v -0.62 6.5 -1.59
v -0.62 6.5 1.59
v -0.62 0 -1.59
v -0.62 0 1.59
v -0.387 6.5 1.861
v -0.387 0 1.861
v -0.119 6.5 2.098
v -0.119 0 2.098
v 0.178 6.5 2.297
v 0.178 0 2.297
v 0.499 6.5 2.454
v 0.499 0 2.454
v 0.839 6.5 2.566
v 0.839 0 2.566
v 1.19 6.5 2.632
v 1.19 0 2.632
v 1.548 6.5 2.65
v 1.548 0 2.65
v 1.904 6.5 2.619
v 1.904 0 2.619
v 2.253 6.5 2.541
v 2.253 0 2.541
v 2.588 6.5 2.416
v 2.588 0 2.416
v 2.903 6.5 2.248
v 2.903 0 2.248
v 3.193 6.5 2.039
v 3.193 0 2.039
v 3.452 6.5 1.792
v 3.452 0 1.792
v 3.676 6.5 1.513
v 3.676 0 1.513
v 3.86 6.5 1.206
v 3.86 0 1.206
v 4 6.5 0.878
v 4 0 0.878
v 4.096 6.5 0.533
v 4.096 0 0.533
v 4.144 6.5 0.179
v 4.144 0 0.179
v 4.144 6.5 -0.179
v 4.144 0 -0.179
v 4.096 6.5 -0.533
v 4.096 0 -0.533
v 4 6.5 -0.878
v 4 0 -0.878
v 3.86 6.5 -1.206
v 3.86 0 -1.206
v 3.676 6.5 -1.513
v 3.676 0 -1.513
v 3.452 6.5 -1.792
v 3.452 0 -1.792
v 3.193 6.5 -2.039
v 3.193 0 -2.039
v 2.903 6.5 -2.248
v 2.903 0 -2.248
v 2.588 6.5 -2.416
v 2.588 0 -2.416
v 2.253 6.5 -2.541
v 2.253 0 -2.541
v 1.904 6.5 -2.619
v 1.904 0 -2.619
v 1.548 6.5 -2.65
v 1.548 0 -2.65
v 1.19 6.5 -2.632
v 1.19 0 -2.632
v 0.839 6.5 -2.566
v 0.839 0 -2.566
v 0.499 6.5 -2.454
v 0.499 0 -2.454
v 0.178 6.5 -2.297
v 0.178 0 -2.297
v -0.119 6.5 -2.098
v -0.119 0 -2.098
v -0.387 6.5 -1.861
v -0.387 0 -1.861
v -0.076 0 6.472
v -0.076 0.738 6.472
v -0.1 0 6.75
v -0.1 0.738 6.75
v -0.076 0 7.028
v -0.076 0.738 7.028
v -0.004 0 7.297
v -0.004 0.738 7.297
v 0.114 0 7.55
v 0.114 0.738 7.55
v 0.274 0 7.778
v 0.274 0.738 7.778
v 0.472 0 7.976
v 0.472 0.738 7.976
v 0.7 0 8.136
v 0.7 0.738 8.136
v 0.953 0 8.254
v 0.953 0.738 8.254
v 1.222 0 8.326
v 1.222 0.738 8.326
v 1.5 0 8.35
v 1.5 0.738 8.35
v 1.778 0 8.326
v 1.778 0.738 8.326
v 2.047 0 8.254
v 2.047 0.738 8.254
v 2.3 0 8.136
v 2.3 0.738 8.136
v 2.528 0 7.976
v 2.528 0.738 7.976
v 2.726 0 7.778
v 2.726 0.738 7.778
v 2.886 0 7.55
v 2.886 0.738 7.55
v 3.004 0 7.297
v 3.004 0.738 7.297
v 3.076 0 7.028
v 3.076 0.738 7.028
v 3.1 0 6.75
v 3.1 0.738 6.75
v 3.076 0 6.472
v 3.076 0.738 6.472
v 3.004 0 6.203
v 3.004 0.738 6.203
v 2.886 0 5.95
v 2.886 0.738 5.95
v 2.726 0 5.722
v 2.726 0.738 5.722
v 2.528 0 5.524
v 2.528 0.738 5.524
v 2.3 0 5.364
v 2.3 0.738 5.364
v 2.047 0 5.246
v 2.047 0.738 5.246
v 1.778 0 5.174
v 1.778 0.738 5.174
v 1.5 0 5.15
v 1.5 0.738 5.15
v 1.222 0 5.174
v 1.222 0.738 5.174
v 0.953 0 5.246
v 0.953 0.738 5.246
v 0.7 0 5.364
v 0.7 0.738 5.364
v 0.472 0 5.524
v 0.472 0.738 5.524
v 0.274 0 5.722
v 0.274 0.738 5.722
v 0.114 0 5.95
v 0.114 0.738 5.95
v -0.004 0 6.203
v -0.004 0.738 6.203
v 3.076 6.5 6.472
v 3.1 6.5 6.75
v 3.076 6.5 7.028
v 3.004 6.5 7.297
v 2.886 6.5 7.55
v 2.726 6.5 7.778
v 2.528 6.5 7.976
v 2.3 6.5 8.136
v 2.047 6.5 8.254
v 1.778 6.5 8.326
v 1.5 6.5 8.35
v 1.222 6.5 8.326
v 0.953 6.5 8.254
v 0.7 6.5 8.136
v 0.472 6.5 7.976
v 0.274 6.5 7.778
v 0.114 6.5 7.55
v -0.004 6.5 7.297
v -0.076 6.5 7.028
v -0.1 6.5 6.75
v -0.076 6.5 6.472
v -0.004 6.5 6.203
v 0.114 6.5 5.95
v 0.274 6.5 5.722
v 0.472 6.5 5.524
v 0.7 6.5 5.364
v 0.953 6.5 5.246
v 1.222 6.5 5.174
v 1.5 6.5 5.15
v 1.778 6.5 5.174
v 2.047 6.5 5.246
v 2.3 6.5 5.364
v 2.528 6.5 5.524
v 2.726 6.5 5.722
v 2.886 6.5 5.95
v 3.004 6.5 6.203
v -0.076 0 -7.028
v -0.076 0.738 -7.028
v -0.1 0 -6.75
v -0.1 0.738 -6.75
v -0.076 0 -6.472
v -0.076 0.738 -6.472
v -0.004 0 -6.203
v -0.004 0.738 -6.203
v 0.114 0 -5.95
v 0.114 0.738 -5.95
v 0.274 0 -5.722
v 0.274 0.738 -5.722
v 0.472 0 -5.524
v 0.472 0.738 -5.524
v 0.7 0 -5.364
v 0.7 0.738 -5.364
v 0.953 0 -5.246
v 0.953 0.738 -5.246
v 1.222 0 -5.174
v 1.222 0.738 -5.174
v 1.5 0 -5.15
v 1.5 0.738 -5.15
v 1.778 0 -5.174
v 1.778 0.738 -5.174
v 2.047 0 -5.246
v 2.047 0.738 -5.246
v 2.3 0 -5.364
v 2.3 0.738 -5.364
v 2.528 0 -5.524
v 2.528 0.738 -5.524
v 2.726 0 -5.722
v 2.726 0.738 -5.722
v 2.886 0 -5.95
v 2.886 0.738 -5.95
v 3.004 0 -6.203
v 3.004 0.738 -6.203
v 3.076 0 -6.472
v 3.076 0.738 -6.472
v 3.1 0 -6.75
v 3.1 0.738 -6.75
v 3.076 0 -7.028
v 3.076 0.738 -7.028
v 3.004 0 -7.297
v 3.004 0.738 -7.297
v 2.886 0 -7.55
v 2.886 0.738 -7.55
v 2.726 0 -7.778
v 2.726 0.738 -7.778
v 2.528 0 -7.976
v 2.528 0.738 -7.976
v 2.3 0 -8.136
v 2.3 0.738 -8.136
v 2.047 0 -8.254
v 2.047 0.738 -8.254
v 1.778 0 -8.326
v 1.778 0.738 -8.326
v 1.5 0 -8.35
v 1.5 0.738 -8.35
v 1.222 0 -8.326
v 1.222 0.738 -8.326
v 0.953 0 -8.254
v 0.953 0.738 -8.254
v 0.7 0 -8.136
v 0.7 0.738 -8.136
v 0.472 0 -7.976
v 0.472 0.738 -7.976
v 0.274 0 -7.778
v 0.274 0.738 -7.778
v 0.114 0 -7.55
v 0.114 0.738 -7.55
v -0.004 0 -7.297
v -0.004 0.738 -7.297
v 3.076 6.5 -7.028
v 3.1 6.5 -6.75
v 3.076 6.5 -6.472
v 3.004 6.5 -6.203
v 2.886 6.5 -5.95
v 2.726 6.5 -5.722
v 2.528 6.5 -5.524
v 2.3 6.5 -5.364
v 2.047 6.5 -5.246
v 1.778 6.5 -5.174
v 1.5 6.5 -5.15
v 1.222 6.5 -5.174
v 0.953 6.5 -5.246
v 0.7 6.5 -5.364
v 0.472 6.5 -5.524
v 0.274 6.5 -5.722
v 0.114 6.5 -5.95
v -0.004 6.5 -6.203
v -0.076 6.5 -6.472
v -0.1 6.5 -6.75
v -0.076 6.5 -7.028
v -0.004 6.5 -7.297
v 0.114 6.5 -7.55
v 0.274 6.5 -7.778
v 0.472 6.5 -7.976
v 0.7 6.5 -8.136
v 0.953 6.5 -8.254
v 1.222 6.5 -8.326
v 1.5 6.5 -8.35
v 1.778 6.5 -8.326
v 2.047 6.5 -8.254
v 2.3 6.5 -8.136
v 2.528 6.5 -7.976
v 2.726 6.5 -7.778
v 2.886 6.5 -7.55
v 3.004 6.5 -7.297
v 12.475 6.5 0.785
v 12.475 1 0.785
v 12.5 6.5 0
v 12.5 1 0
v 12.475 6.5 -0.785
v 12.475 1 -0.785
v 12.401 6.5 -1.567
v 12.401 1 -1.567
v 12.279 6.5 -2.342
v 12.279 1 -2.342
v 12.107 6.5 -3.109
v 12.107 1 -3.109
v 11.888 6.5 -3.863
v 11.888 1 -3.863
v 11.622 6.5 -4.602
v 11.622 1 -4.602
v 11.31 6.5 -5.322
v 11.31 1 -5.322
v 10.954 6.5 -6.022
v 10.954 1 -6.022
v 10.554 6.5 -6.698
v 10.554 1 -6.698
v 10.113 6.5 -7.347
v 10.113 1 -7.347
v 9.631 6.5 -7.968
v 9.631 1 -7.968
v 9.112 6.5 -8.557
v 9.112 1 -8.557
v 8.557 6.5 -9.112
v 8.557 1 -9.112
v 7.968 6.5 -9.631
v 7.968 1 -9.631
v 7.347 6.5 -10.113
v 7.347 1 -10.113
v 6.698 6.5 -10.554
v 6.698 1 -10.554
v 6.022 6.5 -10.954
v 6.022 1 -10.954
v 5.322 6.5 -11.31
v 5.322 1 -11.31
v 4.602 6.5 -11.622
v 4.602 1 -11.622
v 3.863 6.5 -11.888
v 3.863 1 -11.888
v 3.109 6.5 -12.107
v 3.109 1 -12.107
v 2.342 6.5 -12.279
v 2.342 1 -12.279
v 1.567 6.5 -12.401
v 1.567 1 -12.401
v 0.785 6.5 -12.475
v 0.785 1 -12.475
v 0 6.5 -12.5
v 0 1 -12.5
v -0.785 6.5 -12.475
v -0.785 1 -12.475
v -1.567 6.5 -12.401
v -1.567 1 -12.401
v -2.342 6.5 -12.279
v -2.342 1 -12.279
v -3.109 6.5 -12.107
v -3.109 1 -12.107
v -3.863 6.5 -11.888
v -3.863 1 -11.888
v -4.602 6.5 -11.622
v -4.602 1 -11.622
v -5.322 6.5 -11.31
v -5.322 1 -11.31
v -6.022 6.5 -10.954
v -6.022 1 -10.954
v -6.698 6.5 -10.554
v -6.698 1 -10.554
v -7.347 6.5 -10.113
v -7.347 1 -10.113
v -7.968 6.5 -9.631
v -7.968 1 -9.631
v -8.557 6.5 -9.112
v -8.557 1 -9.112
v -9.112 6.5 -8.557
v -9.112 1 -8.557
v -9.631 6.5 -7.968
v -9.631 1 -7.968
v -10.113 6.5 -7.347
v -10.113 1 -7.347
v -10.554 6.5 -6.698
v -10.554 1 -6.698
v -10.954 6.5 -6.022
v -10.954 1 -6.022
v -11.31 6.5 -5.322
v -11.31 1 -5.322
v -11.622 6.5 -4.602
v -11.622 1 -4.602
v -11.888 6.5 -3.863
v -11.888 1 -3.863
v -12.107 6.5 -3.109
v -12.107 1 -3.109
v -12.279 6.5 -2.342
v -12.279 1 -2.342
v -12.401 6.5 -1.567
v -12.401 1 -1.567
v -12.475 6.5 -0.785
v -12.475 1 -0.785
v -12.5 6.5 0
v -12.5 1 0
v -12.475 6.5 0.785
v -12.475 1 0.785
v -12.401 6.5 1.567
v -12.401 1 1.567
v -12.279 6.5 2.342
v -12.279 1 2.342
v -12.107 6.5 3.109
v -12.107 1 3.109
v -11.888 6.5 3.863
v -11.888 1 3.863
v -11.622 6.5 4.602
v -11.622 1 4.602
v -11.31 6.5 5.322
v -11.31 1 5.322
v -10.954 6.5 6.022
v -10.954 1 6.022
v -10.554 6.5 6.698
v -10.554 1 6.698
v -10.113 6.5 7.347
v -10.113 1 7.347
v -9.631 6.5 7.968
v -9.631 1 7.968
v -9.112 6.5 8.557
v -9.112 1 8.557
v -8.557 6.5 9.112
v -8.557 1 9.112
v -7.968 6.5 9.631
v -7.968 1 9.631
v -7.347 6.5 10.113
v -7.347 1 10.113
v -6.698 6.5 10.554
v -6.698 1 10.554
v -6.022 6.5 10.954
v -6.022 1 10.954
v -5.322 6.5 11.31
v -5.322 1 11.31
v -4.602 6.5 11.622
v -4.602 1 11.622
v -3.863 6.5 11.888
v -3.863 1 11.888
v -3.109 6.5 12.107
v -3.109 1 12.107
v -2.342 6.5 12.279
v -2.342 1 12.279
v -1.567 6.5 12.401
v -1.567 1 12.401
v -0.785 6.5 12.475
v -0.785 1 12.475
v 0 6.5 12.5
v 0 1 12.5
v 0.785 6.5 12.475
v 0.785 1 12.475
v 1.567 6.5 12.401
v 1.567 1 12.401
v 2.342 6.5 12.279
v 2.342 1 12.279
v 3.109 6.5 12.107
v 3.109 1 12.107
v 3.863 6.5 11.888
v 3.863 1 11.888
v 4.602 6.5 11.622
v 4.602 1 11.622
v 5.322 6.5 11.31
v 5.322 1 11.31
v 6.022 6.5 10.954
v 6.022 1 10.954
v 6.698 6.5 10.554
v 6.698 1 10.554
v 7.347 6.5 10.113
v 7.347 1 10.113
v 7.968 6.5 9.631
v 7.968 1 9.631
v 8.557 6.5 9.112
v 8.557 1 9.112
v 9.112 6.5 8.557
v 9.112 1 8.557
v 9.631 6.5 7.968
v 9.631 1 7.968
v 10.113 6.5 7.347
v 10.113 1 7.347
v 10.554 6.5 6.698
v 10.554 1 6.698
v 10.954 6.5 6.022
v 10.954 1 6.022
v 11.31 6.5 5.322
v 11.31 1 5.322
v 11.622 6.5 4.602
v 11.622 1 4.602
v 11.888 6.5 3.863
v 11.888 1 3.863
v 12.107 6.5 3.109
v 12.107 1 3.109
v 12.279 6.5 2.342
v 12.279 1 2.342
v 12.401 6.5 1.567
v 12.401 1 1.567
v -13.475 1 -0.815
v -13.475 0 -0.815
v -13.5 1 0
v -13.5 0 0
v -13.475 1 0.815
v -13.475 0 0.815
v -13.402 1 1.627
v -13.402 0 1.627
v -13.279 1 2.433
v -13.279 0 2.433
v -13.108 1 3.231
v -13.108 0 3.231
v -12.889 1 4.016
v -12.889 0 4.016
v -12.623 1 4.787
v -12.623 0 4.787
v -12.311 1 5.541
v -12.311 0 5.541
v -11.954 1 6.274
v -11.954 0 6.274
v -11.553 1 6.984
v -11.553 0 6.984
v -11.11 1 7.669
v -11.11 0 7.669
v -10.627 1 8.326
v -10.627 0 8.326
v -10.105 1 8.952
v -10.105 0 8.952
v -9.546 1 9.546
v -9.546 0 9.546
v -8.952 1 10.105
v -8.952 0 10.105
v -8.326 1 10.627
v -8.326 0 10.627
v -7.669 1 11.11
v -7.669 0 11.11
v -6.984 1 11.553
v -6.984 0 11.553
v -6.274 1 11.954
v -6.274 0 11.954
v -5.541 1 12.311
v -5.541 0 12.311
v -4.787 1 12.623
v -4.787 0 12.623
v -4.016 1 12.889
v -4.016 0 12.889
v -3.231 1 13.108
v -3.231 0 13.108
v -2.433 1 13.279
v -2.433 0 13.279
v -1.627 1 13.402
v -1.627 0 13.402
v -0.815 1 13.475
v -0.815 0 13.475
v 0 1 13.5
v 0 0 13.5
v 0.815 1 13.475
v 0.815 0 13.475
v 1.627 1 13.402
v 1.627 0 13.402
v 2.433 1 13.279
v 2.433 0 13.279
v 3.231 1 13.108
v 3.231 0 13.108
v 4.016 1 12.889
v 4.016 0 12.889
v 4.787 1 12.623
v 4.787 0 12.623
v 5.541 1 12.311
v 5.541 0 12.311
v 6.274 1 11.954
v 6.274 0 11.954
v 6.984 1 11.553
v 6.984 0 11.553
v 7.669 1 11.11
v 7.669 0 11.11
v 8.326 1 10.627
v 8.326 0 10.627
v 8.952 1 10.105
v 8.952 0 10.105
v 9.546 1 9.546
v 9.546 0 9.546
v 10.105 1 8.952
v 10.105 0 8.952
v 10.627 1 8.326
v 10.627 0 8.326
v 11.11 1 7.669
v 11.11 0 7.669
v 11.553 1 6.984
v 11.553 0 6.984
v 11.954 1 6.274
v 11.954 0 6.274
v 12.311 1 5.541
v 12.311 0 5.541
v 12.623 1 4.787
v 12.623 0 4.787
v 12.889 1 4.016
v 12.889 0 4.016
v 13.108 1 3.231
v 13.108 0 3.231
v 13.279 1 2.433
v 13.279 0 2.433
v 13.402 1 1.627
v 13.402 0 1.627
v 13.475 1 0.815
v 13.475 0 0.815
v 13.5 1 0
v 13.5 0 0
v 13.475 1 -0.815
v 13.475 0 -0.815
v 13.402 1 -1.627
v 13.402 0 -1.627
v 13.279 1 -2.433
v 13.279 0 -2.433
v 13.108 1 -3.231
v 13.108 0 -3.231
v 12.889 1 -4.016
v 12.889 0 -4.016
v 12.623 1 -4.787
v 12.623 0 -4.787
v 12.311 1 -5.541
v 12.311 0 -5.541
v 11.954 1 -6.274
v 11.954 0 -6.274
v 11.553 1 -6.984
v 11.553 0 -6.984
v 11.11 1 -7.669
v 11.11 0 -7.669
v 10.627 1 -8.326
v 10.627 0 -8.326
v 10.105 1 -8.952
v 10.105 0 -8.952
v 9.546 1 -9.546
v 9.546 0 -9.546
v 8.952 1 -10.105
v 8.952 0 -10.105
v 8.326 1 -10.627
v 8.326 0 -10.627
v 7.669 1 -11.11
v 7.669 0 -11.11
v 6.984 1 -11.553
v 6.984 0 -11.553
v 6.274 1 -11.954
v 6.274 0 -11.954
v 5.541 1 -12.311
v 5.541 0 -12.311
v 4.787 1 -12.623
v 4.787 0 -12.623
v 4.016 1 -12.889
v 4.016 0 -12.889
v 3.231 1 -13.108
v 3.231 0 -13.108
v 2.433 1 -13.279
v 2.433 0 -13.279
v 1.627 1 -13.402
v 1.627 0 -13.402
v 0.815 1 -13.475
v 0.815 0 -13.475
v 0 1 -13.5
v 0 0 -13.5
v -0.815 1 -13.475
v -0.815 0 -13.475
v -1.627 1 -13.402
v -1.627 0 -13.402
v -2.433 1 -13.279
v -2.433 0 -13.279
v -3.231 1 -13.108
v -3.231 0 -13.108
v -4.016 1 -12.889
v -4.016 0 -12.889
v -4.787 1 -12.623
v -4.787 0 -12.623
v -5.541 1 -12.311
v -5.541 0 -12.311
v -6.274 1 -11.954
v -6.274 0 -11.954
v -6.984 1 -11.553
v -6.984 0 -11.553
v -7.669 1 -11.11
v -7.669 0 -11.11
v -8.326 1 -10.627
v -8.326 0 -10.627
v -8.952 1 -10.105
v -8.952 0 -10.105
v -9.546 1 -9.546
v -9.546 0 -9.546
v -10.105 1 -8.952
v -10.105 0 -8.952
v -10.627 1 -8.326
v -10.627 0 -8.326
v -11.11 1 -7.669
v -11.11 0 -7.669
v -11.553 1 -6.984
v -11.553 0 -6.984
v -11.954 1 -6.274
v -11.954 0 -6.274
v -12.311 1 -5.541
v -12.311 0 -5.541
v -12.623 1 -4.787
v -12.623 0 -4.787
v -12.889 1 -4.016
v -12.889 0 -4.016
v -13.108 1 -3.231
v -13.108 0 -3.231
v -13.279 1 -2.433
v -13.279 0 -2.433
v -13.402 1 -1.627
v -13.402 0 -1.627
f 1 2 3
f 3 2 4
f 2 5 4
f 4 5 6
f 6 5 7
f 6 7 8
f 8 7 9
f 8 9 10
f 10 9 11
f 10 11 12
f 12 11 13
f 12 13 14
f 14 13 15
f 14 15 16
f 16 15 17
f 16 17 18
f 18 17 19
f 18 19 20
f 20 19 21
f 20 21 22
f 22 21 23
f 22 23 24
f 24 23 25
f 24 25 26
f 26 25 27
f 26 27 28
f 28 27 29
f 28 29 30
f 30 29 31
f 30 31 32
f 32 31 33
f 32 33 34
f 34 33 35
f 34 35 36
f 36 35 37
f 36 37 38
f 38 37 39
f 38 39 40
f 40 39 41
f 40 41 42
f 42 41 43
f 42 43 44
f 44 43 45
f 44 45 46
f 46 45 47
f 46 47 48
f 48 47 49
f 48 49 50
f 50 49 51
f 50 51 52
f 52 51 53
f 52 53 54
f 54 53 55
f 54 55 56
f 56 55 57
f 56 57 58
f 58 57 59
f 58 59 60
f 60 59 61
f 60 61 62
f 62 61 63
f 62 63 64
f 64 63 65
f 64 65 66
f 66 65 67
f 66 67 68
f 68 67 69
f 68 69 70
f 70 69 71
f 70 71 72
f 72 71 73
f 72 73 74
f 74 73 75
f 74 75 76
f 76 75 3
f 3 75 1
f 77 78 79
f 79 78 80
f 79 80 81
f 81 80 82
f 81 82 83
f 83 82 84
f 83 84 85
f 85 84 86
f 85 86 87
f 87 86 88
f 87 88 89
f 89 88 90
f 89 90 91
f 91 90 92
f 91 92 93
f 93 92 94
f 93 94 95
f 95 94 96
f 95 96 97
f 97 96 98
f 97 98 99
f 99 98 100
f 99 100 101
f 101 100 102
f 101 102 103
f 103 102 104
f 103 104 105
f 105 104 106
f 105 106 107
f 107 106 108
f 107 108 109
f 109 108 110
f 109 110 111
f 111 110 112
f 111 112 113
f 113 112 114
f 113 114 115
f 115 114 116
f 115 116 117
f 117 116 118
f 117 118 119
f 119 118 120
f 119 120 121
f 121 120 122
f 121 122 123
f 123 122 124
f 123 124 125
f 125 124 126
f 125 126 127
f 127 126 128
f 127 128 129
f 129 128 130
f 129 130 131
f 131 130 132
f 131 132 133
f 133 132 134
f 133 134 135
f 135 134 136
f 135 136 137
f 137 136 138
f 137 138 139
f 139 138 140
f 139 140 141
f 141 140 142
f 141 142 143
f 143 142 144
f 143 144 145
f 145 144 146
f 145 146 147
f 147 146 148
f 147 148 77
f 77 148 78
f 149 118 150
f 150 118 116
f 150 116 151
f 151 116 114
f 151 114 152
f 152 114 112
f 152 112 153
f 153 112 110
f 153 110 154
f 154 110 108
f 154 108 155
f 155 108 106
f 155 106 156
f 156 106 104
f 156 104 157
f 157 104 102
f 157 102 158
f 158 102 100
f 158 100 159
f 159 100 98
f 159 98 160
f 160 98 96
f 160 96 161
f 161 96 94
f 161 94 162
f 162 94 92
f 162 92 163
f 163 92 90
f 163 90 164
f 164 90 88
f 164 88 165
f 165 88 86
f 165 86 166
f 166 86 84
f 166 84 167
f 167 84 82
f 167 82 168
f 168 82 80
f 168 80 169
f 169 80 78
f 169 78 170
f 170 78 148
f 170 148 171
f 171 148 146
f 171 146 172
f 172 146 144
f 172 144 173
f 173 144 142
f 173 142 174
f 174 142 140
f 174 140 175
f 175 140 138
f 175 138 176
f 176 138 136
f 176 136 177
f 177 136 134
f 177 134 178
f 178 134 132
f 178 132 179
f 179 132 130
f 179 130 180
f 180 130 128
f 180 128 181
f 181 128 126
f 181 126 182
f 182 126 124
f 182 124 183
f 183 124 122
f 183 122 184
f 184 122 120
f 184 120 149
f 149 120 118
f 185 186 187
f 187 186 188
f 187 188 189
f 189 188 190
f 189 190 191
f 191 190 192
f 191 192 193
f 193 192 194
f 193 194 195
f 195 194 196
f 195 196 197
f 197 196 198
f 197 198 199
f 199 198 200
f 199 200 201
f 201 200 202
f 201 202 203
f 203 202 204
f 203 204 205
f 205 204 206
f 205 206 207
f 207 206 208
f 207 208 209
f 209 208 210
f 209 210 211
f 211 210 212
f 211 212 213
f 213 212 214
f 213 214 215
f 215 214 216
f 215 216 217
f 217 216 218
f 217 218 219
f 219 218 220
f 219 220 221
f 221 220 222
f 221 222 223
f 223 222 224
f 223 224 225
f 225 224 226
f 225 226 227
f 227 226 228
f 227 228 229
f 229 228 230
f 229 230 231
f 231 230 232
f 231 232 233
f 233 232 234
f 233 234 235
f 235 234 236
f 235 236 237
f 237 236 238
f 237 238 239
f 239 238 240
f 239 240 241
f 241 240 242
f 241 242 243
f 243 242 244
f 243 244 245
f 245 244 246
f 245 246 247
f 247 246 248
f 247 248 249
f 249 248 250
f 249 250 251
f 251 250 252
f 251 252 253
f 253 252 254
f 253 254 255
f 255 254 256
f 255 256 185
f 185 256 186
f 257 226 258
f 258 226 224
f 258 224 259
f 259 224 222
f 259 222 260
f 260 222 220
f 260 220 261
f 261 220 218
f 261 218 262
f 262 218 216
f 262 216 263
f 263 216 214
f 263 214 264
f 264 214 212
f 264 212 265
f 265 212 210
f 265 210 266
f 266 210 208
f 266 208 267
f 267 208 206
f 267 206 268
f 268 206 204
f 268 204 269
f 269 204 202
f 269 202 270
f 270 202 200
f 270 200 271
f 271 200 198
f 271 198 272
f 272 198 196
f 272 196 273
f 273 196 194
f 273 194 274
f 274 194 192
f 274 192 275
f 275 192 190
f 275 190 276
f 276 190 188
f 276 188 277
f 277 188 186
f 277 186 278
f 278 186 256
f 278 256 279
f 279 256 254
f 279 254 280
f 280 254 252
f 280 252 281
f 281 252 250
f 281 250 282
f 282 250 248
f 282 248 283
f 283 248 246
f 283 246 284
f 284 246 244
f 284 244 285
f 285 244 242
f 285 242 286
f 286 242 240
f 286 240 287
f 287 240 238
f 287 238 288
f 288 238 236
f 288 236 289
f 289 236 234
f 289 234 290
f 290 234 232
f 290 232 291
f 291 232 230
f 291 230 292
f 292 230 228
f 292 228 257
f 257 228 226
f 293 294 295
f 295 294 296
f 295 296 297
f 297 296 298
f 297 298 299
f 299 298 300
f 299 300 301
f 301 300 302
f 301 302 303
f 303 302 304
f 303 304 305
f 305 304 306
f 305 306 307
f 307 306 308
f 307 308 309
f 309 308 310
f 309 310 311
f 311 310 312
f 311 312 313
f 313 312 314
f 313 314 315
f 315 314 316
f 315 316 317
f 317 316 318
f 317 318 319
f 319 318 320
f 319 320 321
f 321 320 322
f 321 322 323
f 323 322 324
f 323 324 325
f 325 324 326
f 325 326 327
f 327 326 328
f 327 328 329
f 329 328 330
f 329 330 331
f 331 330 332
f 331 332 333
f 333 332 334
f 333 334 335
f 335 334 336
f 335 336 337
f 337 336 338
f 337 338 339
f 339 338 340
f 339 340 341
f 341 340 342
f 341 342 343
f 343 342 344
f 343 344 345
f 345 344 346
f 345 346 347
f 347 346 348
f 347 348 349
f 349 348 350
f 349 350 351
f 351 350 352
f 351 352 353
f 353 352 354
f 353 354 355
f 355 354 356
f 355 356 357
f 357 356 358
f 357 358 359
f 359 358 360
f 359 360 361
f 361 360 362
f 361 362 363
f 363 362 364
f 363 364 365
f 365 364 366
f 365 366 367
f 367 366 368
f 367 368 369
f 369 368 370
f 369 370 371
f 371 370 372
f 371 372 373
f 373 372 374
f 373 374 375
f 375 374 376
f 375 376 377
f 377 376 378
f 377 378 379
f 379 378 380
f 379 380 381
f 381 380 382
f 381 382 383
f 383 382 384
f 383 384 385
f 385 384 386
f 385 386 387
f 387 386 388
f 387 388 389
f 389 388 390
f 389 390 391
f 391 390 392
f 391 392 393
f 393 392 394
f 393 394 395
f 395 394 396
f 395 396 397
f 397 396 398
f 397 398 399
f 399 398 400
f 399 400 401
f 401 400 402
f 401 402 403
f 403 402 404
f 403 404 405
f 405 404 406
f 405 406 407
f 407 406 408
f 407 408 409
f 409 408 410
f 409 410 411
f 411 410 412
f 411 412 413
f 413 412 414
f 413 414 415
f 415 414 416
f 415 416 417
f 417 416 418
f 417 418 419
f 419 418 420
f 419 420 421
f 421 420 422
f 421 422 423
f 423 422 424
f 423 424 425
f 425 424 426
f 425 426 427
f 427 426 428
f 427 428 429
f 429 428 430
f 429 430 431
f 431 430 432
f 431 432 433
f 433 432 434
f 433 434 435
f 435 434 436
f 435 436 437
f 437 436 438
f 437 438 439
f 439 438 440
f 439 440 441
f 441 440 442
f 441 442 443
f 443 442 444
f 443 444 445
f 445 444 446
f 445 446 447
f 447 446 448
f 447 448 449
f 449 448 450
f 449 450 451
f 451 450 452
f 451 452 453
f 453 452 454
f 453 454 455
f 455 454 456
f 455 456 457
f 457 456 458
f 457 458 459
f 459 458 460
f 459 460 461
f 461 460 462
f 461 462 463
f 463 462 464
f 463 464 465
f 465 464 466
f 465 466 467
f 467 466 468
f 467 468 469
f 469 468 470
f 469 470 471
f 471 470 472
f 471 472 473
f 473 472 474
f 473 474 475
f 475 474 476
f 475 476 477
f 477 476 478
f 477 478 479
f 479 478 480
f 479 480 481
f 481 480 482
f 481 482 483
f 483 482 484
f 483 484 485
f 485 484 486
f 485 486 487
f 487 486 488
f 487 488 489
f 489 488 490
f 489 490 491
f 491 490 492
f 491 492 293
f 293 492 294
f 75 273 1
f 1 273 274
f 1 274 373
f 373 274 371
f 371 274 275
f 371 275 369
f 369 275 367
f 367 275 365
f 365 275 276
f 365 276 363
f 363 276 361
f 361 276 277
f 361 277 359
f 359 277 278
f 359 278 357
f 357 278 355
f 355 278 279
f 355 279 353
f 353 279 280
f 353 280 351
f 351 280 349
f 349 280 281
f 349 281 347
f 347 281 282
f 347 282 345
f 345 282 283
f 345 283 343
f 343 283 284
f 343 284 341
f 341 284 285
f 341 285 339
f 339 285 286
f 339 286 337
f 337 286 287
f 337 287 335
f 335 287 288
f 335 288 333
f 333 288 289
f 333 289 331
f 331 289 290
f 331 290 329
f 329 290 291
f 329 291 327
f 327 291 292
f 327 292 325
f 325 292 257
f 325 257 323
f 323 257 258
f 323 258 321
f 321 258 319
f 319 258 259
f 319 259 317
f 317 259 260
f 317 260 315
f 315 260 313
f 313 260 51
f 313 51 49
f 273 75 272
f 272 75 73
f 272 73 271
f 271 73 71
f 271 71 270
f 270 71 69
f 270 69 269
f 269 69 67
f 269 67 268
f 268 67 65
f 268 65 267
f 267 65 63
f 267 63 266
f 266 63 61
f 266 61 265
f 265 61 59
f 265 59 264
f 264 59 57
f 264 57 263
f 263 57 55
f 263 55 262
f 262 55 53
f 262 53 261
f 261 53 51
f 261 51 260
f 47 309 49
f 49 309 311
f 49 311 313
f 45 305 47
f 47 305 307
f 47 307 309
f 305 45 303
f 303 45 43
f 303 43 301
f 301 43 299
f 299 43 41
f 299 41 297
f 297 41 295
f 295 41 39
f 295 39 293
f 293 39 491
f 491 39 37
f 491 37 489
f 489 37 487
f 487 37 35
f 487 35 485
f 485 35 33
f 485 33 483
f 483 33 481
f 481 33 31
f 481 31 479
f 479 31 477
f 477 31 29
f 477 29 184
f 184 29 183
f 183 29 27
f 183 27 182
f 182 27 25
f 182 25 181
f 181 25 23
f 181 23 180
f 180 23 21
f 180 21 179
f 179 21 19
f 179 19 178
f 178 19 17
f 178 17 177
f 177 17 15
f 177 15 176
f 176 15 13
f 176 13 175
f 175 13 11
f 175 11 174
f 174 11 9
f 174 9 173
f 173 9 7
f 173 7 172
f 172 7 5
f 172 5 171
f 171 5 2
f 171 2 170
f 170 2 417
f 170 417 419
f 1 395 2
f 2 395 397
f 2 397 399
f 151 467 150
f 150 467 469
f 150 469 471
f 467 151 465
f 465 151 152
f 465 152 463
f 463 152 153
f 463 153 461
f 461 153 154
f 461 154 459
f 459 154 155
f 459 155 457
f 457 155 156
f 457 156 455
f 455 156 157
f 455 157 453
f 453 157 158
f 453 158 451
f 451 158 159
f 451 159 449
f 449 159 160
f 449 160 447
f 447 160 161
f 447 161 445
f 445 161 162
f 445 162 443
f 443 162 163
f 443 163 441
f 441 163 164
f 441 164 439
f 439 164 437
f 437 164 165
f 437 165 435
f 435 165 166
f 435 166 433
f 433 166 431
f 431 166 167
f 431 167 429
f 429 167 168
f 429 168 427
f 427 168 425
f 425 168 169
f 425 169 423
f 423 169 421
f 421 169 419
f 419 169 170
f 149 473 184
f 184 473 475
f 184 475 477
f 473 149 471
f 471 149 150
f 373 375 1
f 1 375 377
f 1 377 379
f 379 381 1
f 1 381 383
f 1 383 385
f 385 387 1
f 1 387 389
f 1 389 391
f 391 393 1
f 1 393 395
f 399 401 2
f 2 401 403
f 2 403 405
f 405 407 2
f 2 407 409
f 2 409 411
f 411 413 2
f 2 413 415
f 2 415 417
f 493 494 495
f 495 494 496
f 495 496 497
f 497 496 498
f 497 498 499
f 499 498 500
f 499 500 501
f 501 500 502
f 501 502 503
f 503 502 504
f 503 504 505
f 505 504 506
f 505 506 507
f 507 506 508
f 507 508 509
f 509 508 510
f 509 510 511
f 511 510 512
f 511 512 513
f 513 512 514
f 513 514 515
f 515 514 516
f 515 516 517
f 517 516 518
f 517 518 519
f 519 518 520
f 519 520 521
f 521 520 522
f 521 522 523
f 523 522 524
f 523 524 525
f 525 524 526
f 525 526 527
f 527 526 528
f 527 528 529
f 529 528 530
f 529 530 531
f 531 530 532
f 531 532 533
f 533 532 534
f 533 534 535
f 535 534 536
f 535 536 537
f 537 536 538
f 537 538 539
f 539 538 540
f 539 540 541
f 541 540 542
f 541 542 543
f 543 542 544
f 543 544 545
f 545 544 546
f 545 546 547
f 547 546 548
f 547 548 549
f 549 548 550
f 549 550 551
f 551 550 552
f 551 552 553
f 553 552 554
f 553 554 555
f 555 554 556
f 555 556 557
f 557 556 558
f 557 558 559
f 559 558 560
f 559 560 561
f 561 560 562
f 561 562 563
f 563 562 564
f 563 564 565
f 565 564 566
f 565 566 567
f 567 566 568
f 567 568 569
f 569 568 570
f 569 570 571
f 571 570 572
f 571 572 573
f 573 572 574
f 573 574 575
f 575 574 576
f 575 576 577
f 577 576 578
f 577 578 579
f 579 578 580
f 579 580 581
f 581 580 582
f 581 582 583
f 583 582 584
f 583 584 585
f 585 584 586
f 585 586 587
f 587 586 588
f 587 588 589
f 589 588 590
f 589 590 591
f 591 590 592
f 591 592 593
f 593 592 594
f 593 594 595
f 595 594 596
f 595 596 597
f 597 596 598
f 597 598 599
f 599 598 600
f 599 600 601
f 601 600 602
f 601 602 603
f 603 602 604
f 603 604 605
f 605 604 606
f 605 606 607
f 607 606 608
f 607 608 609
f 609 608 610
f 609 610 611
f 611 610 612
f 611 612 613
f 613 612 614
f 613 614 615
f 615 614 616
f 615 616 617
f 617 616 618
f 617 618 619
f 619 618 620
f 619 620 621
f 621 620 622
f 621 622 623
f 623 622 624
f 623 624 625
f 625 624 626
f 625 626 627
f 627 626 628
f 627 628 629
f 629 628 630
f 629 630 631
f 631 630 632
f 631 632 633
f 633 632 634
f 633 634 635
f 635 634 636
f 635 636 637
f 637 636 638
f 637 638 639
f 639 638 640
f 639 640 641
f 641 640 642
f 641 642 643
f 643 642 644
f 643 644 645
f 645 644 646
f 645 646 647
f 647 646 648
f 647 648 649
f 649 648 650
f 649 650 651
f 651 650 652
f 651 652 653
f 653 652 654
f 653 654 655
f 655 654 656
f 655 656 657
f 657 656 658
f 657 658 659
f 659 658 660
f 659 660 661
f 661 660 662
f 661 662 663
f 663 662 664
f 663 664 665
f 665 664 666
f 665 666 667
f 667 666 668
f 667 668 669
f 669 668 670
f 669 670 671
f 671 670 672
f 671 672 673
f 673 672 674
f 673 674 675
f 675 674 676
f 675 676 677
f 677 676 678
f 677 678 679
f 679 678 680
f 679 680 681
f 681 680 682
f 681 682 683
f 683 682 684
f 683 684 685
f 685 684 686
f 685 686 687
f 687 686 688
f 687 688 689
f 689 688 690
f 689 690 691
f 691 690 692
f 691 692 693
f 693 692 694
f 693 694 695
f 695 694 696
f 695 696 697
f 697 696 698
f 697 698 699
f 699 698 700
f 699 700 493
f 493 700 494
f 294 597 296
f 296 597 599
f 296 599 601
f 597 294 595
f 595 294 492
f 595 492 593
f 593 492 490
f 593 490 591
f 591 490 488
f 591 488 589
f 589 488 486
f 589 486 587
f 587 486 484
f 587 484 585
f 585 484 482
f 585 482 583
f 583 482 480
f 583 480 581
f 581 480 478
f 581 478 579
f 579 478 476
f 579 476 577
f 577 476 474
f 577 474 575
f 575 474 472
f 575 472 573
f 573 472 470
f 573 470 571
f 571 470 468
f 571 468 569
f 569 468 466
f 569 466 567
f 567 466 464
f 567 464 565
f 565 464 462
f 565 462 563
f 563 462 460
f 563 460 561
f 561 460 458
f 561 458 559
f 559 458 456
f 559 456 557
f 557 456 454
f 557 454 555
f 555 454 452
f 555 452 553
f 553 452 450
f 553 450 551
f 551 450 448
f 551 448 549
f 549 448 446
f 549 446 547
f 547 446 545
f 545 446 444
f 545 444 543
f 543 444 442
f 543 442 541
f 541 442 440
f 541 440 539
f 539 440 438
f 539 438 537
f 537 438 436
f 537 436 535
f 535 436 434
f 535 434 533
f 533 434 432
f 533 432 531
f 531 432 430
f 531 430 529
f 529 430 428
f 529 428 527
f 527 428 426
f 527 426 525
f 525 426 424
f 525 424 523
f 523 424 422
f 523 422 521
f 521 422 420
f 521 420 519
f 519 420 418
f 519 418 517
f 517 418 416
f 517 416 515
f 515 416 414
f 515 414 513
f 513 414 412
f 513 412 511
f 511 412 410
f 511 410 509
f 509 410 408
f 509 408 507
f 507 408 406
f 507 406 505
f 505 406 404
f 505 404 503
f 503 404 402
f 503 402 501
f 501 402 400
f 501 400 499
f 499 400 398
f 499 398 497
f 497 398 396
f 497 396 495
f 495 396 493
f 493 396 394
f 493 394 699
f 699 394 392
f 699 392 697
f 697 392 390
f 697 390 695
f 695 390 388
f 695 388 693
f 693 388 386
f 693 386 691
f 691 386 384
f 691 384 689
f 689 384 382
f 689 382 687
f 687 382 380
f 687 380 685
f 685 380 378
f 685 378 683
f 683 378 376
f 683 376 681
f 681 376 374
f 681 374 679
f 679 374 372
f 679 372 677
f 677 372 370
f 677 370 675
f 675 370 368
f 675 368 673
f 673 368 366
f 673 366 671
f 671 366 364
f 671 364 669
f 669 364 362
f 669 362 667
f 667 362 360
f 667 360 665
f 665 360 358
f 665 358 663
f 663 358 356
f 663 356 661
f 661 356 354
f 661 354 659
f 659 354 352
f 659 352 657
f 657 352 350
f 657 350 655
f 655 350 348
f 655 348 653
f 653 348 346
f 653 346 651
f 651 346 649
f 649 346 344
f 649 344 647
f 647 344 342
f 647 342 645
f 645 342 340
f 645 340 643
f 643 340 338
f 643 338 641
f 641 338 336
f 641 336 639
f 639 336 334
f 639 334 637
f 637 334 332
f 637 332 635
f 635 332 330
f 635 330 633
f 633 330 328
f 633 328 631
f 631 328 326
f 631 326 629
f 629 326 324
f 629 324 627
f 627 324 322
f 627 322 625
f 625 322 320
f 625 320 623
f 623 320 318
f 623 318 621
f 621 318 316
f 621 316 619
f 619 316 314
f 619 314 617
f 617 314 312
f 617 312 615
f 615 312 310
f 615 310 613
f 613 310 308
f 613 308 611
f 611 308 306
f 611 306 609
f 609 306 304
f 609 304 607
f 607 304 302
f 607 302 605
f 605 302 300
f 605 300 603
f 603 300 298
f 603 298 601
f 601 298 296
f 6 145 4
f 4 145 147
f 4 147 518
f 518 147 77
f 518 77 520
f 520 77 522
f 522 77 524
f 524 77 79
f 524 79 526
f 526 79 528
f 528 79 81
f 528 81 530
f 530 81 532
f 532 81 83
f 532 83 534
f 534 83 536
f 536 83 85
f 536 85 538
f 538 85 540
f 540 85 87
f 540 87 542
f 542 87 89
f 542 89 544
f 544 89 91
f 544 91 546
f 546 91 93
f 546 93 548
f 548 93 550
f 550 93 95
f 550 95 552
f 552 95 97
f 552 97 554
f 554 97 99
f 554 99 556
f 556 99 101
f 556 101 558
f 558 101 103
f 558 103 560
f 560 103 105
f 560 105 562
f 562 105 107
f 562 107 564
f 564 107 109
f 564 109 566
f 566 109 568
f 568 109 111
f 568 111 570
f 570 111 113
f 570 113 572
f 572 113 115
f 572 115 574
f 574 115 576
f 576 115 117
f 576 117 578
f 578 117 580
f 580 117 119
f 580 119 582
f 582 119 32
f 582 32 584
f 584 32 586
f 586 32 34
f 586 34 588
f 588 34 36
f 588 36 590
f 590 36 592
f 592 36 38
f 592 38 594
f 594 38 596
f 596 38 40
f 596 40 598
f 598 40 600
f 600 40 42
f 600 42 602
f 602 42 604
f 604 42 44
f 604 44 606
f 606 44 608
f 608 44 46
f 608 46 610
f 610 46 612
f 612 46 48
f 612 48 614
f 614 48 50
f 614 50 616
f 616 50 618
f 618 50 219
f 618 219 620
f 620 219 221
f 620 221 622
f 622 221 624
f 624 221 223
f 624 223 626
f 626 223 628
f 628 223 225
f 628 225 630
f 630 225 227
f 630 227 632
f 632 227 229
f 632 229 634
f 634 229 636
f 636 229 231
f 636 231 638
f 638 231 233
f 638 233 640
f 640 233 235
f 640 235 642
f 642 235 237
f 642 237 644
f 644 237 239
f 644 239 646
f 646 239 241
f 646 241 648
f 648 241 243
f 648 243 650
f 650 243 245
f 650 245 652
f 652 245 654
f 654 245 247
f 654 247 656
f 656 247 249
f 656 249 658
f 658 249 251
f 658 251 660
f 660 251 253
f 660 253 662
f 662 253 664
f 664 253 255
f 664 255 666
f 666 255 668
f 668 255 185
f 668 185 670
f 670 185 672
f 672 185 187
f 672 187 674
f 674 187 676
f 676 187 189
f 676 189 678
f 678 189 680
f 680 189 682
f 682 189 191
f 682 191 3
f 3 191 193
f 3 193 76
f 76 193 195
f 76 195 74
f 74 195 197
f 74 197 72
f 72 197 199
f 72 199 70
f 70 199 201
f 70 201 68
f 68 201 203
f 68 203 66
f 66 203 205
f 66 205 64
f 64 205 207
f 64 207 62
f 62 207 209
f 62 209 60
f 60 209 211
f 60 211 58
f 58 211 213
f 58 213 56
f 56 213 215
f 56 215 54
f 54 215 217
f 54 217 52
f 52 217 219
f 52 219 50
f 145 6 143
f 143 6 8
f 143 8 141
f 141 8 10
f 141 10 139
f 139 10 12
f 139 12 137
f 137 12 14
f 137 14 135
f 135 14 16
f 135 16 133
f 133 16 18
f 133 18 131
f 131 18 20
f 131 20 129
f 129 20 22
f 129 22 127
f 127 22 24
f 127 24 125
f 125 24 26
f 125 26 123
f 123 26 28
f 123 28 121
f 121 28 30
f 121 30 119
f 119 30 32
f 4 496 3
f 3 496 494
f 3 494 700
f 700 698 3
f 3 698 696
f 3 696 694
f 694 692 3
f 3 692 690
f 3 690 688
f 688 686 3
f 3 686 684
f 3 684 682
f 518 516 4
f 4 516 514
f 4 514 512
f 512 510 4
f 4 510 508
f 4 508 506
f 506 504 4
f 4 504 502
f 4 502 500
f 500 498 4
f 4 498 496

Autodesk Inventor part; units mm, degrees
ref_plane "YZ Plane" through (0, 0, 0) normal (1, 0, 0) x (0, 1, 0)
ref_plane "XZ Plane" through (0, 0, 0) normal (0, 1, 0) x (-1, 0, 0)
ref_plane "XY Plane" through (0, 0, 0) normal (0, 0, 1) x (1, 0, 0)
sketch "Szkic1" plane through (0, 0, 0) normal (0, 1, 0) x (-1, 0, 0)
  circle A0 centre (0, 0) radius 13.5
  dimension "d0" = 27
extrude "Wyciągnięcie proste1" add sketch "Szkic1" along normal blind 1
sketch "Szkic2" plane through (0, 1, 0) normal (0, 1, 0) x (1, 0, 0)
  circle A0 centre (0, 0) radius 12.5
  dimension "d3" = 25
extrude "Wyciągnięcie proste2" add sketch "Szkic2" along normal blind 5.5
sketch "Szkic3" plane through (0, 6.5, 0) normal (0, 1, 0) x (1, 0, 0)
  point P0 (0, 0)
  point P1 (1.5, -6.75)
  point P2 (1.5, 6.75)
  dimension "d21" = 6.75
hole "Otwór1" at (1.5, 6.5, 6.75) at (1.5, 6.5, -6.75) direction (0, -1, 0) diameter 3.2 end through all
sketch "Szkic5" plane through (0, 0, 0) normal (0, -1, 0) x (1, 0, 0)
  arc A0 (-0.62, -1.59) -> (-0.62, 1.59) centre (1.5, 0) ccw
  line L0 (-0.62, 1.59) -> (-0.62, -1.59)
  point P0 (0, 0)
  dimension "d16" = 5.3
extrude "Wyciągnięcie proste3" cut sketch "Szkic5" against normal through all
properties part number "RotorShaft2"
